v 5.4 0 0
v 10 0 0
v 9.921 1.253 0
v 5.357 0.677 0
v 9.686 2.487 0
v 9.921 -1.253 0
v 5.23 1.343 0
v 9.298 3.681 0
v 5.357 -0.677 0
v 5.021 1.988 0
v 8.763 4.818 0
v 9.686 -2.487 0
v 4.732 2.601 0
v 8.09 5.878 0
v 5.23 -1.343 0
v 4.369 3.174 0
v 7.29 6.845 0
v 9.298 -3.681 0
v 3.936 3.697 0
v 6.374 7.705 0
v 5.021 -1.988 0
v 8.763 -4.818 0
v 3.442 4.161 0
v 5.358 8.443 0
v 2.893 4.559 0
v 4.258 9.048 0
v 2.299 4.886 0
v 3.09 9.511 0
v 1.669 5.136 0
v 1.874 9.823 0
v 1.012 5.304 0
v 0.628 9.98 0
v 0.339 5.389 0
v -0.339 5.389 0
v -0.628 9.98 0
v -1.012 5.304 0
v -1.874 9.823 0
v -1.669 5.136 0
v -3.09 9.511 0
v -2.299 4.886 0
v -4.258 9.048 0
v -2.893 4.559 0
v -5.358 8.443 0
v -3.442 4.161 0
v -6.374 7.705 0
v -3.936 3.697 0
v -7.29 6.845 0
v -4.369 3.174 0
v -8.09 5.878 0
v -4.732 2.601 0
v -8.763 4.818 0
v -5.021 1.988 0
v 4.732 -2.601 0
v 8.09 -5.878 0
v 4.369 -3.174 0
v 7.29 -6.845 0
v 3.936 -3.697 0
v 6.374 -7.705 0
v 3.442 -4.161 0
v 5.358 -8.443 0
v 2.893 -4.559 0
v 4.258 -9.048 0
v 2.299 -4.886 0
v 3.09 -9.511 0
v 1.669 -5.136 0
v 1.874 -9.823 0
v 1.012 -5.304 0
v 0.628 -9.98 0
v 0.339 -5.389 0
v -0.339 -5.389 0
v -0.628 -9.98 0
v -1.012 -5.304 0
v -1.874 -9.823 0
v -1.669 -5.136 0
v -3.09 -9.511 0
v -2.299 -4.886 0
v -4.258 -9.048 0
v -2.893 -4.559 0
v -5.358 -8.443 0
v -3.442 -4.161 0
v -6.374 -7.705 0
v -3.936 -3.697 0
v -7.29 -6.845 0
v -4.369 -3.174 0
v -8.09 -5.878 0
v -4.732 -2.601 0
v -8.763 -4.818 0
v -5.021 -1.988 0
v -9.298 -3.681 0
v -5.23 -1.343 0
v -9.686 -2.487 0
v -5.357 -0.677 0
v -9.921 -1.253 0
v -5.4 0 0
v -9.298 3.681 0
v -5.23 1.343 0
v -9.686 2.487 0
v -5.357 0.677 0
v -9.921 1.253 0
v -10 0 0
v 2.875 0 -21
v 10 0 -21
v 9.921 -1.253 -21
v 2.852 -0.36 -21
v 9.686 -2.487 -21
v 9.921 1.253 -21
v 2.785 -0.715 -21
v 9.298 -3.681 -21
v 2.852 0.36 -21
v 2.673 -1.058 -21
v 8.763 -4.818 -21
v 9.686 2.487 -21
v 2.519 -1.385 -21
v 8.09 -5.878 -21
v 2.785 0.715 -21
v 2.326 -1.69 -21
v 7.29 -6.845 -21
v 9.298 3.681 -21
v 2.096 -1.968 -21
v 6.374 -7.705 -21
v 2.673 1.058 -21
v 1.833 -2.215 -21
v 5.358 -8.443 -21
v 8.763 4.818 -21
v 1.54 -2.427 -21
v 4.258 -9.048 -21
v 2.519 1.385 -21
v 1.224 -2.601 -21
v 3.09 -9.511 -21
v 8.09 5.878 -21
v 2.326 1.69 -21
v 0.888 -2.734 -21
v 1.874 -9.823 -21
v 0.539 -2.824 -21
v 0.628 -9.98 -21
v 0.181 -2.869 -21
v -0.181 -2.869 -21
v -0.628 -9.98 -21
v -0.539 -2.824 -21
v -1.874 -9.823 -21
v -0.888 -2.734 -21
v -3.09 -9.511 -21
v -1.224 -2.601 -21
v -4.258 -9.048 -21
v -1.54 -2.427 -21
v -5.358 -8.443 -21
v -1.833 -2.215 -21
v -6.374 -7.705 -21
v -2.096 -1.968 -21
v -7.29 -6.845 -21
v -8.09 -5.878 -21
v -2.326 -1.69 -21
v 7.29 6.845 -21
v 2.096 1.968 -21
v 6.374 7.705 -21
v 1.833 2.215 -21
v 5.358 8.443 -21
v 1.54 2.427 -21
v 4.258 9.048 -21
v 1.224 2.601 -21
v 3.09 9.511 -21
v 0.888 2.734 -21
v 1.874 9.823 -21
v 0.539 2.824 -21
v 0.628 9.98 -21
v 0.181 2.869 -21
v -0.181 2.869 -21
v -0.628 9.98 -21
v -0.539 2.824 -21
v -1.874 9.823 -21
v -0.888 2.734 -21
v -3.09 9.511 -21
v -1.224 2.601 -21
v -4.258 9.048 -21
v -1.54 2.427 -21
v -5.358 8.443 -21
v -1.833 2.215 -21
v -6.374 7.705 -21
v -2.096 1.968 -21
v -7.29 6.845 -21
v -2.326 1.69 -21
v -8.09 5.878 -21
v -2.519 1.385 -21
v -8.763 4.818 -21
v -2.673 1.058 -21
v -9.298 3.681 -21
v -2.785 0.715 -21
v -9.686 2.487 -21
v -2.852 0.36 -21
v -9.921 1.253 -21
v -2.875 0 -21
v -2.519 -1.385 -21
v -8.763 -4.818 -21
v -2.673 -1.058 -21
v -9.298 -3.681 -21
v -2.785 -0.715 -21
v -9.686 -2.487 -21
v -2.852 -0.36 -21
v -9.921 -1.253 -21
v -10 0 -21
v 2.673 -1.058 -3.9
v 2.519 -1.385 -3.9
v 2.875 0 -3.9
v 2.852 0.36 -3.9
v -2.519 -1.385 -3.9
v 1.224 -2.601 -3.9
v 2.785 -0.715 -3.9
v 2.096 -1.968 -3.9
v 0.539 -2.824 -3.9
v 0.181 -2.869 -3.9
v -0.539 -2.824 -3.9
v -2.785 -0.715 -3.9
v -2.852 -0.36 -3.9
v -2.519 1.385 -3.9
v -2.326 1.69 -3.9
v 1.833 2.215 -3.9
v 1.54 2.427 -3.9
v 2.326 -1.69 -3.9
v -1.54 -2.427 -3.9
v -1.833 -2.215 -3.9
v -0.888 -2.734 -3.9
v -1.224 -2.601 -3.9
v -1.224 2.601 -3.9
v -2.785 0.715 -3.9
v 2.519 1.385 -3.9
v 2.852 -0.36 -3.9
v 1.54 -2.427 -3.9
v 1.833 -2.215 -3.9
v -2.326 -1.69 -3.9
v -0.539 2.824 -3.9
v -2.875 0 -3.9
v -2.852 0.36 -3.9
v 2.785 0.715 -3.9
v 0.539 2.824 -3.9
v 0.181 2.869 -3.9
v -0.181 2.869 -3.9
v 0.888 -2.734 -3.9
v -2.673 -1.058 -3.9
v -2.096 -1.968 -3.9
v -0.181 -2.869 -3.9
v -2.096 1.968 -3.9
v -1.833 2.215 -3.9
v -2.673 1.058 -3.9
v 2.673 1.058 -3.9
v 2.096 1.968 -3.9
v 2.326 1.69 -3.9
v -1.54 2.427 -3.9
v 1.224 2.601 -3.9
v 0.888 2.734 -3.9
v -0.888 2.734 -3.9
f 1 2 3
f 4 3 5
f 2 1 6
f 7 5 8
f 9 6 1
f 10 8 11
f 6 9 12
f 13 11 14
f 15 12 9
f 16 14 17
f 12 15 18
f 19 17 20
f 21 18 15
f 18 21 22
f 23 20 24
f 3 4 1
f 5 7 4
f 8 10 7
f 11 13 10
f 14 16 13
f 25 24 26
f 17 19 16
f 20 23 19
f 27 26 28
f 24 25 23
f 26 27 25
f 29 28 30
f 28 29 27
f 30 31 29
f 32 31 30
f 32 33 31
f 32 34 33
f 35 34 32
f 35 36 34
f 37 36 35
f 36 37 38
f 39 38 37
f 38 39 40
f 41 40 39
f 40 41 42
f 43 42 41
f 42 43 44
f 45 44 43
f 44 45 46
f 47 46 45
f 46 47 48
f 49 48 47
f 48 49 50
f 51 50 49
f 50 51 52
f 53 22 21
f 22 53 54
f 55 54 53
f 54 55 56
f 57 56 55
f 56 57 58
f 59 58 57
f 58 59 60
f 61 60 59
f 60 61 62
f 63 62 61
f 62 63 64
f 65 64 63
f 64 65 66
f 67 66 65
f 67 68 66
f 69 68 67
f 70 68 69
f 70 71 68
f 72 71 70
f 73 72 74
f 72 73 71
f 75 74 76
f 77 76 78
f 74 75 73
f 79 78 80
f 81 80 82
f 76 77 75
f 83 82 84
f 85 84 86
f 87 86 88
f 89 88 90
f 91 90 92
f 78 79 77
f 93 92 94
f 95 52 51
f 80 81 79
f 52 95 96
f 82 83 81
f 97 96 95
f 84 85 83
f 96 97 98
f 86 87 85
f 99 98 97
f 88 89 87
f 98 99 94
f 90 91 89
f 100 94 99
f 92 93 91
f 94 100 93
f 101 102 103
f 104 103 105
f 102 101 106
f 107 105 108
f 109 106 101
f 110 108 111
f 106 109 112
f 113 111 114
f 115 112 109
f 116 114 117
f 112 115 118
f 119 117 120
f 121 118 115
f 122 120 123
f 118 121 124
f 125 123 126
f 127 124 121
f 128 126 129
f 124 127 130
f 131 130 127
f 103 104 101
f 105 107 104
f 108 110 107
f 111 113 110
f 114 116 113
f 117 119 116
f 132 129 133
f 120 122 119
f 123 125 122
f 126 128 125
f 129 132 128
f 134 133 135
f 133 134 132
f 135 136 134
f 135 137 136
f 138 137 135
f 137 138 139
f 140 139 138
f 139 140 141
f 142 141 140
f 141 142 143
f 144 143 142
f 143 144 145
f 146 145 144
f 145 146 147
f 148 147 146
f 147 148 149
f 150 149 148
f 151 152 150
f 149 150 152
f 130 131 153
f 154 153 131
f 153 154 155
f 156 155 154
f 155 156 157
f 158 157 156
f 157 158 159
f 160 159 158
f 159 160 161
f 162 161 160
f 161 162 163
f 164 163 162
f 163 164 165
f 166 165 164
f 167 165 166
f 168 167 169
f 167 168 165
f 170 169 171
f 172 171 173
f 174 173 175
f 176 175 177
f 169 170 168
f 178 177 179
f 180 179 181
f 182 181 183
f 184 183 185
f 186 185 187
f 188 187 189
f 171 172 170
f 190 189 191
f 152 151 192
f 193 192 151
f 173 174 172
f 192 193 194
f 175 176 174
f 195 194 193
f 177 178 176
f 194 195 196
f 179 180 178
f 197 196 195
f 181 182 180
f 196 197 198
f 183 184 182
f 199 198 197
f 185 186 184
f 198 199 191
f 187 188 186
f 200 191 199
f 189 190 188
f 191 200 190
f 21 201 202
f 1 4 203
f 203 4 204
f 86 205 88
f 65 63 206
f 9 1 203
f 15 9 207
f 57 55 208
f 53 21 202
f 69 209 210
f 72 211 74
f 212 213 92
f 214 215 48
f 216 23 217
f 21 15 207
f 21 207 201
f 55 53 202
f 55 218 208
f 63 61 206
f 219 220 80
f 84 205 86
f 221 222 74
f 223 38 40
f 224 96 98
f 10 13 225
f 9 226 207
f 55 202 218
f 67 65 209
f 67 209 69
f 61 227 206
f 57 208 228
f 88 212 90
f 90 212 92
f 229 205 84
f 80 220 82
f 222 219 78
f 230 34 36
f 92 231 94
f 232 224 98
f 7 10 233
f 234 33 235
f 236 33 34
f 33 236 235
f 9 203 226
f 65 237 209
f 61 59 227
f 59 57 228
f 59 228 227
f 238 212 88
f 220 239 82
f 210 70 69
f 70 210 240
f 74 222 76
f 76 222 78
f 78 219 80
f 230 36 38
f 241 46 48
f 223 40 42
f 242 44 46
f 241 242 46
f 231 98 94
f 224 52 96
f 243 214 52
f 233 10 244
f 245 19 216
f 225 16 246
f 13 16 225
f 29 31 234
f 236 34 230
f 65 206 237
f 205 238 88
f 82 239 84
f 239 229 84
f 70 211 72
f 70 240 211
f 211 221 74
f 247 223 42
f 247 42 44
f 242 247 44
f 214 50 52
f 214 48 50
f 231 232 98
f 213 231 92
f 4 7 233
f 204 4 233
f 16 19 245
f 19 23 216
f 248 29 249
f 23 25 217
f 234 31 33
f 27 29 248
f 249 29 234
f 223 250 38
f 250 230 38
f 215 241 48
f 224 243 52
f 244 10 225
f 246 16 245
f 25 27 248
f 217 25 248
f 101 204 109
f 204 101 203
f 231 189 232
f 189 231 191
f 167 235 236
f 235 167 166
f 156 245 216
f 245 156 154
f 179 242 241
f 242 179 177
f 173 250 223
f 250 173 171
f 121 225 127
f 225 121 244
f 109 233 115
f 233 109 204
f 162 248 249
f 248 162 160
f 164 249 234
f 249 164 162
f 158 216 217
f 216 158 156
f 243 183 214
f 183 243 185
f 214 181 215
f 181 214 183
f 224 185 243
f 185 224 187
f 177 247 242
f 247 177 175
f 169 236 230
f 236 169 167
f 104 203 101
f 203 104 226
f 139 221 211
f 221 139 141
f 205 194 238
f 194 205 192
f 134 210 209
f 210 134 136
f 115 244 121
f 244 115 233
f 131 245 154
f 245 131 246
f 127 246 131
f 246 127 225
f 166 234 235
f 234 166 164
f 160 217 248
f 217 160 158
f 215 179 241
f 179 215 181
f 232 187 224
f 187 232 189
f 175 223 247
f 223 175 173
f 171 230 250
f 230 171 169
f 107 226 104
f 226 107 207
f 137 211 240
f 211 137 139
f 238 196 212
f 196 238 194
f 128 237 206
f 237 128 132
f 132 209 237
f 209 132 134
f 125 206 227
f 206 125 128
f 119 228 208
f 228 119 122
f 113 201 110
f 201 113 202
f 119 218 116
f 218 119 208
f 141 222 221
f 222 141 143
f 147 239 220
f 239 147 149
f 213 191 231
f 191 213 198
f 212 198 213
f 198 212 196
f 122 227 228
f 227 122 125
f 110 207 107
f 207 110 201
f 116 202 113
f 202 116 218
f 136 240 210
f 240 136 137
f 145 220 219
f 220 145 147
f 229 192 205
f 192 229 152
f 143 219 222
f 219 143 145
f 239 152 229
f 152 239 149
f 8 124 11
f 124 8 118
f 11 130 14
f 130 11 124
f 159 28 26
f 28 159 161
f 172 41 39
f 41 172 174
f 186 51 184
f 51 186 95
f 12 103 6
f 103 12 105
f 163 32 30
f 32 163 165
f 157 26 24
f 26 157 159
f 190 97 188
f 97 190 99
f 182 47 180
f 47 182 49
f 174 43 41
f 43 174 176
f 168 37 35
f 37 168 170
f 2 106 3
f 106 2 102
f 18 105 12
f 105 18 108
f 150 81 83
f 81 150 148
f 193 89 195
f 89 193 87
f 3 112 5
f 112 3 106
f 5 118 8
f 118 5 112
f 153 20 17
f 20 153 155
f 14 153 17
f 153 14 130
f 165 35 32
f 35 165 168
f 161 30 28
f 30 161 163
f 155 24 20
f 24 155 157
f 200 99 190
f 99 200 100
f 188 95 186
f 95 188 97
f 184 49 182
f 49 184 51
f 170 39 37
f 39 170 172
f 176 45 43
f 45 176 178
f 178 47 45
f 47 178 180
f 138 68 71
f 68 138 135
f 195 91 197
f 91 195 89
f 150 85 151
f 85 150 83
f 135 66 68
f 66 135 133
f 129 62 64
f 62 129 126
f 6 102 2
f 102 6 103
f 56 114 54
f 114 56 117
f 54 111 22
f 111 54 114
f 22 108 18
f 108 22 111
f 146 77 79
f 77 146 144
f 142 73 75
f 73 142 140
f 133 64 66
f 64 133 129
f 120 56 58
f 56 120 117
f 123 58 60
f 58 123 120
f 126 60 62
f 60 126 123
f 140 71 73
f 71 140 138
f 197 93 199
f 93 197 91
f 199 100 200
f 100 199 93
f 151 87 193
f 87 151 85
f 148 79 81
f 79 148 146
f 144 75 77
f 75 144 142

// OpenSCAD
$fn = 50;


difference() {
	union() {
		translate(v = [0, 0, -21.0000000000]) {
			cylinder(h = 21, r = 10.0000000000);
		}
		cylinder(h = 0, r = 20.0000000000);
	}
	union() {
		translate(v = [0, 0, 0]) {
			rotate(a = [0, 0, 0]) {
				difference() {
					union() {
						#translate(v = [0, 0, -21.0000000000]) {
							cylinder(h = 21, r = 2.6000000000);
						}
						#translate(v = [0, 0, -3.9000000000]) {
							cylinder(h = 3.9000000000, r1 = 2.8750000000, r2 = 5.4000000000);
						}
						#translate(v = [0, 0, -21.0000000000]) {
							cylinder(h = 21, r = 2.8750000000);
						}
						#translate(v = [0, 0, -21.0000000000]) {
							cylinder(h = 21, r = 2.6000000000);
						}
					}
					union();
				}
			}
		}
	}
}
